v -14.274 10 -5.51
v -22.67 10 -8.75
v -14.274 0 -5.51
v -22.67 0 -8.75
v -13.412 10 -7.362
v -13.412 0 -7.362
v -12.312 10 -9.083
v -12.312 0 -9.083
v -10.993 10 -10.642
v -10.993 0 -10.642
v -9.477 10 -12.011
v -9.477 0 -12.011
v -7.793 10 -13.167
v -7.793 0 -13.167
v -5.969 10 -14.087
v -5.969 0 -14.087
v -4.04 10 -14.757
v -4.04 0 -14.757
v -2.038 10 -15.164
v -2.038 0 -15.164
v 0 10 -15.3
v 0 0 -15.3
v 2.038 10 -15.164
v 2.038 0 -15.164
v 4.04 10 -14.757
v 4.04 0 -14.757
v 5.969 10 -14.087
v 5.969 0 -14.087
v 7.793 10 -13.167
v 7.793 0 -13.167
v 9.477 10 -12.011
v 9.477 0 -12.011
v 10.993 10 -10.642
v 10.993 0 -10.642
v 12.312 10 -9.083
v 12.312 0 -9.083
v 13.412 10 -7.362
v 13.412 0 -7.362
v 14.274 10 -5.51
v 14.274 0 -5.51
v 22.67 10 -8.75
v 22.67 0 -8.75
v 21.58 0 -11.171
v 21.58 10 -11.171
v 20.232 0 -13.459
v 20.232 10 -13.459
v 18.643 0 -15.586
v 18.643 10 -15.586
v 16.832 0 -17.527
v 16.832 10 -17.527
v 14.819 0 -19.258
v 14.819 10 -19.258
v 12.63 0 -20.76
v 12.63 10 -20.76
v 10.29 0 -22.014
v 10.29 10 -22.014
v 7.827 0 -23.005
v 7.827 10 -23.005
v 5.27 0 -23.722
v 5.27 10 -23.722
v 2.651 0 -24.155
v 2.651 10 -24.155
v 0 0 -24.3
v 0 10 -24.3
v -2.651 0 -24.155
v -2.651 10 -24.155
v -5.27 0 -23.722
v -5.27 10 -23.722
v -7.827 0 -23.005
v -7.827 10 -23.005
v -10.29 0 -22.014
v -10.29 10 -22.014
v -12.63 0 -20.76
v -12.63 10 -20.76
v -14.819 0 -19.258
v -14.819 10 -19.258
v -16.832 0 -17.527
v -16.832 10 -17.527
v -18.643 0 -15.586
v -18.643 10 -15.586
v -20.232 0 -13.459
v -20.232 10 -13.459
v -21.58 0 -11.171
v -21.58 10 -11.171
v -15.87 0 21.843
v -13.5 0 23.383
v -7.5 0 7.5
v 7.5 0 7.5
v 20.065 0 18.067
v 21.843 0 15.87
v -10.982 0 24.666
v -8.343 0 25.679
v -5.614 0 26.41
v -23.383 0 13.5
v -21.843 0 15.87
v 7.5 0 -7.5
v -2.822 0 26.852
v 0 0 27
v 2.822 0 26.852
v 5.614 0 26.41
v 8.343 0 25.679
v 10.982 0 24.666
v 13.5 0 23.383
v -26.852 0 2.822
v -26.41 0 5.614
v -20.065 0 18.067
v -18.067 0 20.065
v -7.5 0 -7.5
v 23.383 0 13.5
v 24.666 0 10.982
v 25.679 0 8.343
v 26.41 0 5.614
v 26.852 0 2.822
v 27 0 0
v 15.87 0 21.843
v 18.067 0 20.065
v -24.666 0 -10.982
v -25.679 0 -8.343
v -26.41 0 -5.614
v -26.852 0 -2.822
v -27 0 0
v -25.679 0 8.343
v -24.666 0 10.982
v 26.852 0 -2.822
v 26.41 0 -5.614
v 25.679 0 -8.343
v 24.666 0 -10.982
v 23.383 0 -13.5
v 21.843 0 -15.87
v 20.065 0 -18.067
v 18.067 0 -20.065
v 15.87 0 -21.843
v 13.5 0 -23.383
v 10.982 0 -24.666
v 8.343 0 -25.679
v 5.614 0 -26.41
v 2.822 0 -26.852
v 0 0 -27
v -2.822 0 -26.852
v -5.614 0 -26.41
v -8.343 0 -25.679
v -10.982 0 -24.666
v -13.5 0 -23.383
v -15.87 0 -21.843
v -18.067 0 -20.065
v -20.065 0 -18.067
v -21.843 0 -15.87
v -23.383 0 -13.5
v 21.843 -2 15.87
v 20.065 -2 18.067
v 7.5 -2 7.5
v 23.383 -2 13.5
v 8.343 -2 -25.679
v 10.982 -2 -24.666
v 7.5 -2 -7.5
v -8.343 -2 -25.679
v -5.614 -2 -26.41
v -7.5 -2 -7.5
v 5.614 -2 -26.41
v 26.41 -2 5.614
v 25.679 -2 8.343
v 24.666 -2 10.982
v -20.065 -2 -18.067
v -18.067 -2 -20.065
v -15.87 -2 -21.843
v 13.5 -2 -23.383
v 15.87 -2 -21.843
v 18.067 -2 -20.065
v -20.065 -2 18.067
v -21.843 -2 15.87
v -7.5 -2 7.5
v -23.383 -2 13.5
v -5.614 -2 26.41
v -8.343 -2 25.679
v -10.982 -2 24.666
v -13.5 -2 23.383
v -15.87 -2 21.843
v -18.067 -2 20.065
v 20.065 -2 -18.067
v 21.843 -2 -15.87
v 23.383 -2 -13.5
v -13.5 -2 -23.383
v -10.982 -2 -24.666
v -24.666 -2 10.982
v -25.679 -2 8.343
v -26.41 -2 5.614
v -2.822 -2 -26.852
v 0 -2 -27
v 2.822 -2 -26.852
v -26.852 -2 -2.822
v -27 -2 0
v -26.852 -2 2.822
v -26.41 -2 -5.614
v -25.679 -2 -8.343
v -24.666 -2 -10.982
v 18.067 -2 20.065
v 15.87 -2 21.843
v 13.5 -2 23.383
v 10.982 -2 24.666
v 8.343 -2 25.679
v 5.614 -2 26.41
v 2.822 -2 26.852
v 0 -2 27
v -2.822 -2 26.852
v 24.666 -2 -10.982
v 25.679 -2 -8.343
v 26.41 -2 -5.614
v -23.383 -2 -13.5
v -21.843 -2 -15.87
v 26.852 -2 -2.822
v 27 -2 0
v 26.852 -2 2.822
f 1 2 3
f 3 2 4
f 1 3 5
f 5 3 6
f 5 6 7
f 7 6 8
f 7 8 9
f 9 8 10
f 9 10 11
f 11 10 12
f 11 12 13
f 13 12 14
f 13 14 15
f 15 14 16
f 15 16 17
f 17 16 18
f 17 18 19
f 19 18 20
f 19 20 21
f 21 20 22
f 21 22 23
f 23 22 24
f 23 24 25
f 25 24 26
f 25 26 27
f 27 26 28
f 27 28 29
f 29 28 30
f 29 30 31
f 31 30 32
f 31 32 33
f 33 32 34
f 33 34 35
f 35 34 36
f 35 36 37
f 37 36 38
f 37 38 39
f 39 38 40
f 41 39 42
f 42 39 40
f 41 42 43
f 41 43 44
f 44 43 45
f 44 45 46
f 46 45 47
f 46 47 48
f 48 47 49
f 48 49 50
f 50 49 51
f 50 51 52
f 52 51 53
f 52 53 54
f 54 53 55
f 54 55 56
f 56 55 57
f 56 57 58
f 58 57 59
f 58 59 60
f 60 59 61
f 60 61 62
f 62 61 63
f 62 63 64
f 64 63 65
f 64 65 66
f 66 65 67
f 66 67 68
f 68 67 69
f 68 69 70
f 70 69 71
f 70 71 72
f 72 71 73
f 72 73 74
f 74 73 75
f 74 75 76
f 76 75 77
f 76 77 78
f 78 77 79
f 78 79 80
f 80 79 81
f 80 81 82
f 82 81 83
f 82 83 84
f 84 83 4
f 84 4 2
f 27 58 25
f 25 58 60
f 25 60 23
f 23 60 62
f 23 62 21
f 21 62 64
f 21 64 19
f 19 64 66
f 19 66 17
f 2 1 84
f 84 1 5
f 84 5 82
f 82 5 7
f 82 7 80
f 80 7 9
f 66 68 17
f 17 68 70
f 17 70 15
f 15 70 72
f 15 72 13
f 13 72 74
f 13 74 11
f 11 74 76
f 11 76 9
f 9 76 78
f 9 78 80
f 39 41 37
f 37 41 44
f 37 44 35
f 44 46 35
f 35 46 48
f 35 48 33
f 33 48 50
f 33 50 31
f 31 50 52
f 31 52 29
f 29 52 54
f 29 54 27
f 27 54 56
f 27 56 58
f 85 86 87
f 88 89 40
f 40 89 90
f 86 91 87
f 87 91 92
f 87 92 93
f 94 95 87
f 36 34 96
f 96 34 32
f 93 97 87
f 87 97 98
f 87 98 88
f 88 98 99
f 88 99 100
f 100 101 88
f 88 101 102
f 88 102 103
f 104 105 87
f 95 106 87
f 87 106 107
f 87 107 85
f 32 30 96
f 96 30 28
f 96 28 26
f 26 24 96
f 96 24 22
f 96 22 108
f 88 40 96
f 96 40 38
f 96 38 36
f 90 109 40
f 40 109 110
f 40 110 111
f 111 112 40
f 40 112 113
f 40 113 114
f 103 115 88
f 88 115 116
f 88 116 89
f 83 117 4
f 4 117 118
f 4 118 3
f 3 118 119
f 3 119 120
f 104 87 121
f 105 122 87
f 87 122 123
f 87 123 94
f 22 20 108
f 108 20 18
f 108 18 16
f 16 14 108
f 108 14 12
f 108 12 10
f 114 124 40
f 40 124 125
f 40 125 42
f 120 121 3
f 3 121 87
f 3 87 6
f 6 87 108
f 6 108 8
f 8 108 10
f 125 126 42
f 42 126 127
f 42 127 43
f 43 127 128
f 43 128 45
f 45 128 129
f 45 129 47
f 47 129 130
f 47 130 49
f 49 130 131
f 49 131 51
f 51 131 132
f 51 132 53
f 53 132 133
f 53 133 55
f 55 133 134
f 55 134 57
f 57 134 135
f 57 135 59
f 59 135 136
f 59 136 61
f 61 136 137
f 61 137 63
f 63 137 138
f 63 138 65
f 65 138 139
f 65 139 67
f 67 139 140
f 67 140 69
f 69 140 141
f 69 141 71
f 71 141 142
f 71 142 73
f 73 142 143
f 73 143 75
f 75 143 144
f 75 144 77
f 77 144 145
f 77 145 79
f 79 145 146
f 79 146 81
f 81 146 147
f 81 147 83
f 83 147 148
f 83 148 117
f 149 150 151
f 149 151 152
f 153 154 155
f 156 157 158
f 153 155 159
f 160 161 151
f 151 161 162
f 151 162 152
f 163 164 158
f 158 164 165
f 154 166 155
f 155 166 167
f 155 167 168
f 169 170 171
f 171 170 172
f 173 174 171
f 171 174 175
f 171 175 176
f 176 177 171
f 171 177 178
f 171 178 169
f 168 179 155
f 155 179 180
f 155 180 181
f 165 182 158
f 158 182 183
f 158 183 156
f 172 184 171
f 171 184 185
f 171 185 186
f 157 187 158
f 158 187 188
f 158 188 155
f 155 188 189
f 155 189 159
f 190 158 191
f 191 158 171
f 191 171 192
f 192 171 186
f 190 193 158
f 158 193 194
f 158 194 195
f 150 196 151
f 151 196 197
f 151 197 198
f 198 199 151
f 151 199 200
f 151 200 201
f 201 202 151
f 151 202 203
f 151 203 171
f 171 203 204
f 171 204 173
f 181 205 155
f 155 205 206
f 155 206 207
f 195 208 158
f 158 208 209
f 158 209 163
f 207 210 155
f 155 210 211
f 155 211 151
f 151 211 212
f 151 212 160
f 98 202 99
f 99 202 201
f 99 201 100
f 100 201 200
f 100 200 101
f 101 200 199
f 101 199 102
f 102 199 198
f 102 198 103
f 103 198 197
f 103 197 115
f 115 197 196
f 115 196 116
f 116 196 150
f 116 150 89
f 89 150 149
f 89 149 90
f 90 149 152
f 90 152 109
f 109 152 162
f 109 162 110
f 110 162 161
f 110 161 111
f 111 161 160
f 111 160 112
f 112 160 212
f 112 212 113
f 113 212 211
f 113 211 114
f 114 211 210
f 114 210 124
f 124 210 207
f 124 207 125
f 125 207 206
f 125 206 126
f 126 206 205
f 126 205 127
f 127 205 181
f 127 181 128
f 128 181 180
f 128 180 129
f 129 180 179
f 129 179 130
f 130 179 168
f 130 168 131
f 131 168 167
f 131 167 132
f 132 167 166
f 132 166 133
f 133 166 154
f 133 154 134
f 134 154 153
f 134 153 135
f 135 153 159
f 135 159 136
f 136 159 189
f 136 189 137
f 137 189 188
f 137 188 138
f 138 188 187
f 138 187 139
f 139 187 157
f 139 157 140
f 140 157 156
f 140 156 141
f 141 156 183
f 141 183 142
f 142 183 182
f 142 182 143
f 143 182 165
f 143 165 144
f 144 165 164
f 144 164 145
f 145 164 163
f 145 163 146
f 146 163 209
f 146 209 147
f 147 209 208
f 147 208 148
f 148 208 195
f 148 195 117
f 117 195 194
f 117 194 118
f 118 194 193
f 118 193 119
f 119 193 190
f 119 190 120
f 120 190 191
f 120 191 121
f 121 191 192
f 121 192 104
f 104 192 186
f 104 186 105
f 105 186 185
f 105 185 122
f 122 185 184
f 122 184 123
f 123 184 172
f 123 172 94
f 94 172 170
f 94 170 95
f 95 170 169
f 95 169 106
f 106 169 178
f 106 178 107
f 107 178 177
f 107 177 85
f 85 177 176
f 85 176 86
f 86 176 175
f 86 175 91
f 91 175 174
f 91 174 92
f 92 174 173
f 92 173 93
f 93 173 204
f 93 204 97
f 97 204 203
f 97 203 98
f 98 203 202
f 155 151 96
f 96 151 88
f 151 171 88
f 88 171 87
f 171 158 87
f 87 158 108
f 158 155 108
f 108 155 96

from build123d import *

# Parameters (mm, degrees)
BOSS_EXTRUDE1_DEPTH = 10
SKETCH2_R           = 27
SKETCH2_W           = 15
SKETCH2_H           = 15
BOSS_EXTRUDE2_DEPTH = 2


with BuildPart() as part:
    # Sketch1 → Boss-Extrude1 (new body)
    with BuildSketch(Plane(origin=(0, 0, 0), x_dir=(1, 0, 0), z_dir=(0, 1, 0))):
        with BuildLine():
            Line((-22.669793675, 8.750454545), (-14.273573795, 5.509545455))
            ThreePointArc((-14.273573795, 5.509545455), (0, 15.3), (14.273573795, 5.509545455))
            Line((14.273573795, 5.509545455), (22.669793675, 8.750454545))
            ThreePointArc((22.669793675, 8.750454545), (0, 24.3), (-22.669793675, 8.750454545))
        make_face()
    extrude(amount=BOSS_EXTRUDE1_DEPTH)

    # Sketch2 → Boss-Extrude2 (add)
    with BuildSketch(Plane.XZ):
        with Locations(Location((0, 0, 0), (0, 0, 270))):
            Circle(SKETCH2_R)
        Rectangle(SKETCH2_W, SKETCH2_H, mode=Mode.SUBTRACT)
    extrude(amount=BOSS_EXTRUDE2_DEPTH)


solid = part.part
